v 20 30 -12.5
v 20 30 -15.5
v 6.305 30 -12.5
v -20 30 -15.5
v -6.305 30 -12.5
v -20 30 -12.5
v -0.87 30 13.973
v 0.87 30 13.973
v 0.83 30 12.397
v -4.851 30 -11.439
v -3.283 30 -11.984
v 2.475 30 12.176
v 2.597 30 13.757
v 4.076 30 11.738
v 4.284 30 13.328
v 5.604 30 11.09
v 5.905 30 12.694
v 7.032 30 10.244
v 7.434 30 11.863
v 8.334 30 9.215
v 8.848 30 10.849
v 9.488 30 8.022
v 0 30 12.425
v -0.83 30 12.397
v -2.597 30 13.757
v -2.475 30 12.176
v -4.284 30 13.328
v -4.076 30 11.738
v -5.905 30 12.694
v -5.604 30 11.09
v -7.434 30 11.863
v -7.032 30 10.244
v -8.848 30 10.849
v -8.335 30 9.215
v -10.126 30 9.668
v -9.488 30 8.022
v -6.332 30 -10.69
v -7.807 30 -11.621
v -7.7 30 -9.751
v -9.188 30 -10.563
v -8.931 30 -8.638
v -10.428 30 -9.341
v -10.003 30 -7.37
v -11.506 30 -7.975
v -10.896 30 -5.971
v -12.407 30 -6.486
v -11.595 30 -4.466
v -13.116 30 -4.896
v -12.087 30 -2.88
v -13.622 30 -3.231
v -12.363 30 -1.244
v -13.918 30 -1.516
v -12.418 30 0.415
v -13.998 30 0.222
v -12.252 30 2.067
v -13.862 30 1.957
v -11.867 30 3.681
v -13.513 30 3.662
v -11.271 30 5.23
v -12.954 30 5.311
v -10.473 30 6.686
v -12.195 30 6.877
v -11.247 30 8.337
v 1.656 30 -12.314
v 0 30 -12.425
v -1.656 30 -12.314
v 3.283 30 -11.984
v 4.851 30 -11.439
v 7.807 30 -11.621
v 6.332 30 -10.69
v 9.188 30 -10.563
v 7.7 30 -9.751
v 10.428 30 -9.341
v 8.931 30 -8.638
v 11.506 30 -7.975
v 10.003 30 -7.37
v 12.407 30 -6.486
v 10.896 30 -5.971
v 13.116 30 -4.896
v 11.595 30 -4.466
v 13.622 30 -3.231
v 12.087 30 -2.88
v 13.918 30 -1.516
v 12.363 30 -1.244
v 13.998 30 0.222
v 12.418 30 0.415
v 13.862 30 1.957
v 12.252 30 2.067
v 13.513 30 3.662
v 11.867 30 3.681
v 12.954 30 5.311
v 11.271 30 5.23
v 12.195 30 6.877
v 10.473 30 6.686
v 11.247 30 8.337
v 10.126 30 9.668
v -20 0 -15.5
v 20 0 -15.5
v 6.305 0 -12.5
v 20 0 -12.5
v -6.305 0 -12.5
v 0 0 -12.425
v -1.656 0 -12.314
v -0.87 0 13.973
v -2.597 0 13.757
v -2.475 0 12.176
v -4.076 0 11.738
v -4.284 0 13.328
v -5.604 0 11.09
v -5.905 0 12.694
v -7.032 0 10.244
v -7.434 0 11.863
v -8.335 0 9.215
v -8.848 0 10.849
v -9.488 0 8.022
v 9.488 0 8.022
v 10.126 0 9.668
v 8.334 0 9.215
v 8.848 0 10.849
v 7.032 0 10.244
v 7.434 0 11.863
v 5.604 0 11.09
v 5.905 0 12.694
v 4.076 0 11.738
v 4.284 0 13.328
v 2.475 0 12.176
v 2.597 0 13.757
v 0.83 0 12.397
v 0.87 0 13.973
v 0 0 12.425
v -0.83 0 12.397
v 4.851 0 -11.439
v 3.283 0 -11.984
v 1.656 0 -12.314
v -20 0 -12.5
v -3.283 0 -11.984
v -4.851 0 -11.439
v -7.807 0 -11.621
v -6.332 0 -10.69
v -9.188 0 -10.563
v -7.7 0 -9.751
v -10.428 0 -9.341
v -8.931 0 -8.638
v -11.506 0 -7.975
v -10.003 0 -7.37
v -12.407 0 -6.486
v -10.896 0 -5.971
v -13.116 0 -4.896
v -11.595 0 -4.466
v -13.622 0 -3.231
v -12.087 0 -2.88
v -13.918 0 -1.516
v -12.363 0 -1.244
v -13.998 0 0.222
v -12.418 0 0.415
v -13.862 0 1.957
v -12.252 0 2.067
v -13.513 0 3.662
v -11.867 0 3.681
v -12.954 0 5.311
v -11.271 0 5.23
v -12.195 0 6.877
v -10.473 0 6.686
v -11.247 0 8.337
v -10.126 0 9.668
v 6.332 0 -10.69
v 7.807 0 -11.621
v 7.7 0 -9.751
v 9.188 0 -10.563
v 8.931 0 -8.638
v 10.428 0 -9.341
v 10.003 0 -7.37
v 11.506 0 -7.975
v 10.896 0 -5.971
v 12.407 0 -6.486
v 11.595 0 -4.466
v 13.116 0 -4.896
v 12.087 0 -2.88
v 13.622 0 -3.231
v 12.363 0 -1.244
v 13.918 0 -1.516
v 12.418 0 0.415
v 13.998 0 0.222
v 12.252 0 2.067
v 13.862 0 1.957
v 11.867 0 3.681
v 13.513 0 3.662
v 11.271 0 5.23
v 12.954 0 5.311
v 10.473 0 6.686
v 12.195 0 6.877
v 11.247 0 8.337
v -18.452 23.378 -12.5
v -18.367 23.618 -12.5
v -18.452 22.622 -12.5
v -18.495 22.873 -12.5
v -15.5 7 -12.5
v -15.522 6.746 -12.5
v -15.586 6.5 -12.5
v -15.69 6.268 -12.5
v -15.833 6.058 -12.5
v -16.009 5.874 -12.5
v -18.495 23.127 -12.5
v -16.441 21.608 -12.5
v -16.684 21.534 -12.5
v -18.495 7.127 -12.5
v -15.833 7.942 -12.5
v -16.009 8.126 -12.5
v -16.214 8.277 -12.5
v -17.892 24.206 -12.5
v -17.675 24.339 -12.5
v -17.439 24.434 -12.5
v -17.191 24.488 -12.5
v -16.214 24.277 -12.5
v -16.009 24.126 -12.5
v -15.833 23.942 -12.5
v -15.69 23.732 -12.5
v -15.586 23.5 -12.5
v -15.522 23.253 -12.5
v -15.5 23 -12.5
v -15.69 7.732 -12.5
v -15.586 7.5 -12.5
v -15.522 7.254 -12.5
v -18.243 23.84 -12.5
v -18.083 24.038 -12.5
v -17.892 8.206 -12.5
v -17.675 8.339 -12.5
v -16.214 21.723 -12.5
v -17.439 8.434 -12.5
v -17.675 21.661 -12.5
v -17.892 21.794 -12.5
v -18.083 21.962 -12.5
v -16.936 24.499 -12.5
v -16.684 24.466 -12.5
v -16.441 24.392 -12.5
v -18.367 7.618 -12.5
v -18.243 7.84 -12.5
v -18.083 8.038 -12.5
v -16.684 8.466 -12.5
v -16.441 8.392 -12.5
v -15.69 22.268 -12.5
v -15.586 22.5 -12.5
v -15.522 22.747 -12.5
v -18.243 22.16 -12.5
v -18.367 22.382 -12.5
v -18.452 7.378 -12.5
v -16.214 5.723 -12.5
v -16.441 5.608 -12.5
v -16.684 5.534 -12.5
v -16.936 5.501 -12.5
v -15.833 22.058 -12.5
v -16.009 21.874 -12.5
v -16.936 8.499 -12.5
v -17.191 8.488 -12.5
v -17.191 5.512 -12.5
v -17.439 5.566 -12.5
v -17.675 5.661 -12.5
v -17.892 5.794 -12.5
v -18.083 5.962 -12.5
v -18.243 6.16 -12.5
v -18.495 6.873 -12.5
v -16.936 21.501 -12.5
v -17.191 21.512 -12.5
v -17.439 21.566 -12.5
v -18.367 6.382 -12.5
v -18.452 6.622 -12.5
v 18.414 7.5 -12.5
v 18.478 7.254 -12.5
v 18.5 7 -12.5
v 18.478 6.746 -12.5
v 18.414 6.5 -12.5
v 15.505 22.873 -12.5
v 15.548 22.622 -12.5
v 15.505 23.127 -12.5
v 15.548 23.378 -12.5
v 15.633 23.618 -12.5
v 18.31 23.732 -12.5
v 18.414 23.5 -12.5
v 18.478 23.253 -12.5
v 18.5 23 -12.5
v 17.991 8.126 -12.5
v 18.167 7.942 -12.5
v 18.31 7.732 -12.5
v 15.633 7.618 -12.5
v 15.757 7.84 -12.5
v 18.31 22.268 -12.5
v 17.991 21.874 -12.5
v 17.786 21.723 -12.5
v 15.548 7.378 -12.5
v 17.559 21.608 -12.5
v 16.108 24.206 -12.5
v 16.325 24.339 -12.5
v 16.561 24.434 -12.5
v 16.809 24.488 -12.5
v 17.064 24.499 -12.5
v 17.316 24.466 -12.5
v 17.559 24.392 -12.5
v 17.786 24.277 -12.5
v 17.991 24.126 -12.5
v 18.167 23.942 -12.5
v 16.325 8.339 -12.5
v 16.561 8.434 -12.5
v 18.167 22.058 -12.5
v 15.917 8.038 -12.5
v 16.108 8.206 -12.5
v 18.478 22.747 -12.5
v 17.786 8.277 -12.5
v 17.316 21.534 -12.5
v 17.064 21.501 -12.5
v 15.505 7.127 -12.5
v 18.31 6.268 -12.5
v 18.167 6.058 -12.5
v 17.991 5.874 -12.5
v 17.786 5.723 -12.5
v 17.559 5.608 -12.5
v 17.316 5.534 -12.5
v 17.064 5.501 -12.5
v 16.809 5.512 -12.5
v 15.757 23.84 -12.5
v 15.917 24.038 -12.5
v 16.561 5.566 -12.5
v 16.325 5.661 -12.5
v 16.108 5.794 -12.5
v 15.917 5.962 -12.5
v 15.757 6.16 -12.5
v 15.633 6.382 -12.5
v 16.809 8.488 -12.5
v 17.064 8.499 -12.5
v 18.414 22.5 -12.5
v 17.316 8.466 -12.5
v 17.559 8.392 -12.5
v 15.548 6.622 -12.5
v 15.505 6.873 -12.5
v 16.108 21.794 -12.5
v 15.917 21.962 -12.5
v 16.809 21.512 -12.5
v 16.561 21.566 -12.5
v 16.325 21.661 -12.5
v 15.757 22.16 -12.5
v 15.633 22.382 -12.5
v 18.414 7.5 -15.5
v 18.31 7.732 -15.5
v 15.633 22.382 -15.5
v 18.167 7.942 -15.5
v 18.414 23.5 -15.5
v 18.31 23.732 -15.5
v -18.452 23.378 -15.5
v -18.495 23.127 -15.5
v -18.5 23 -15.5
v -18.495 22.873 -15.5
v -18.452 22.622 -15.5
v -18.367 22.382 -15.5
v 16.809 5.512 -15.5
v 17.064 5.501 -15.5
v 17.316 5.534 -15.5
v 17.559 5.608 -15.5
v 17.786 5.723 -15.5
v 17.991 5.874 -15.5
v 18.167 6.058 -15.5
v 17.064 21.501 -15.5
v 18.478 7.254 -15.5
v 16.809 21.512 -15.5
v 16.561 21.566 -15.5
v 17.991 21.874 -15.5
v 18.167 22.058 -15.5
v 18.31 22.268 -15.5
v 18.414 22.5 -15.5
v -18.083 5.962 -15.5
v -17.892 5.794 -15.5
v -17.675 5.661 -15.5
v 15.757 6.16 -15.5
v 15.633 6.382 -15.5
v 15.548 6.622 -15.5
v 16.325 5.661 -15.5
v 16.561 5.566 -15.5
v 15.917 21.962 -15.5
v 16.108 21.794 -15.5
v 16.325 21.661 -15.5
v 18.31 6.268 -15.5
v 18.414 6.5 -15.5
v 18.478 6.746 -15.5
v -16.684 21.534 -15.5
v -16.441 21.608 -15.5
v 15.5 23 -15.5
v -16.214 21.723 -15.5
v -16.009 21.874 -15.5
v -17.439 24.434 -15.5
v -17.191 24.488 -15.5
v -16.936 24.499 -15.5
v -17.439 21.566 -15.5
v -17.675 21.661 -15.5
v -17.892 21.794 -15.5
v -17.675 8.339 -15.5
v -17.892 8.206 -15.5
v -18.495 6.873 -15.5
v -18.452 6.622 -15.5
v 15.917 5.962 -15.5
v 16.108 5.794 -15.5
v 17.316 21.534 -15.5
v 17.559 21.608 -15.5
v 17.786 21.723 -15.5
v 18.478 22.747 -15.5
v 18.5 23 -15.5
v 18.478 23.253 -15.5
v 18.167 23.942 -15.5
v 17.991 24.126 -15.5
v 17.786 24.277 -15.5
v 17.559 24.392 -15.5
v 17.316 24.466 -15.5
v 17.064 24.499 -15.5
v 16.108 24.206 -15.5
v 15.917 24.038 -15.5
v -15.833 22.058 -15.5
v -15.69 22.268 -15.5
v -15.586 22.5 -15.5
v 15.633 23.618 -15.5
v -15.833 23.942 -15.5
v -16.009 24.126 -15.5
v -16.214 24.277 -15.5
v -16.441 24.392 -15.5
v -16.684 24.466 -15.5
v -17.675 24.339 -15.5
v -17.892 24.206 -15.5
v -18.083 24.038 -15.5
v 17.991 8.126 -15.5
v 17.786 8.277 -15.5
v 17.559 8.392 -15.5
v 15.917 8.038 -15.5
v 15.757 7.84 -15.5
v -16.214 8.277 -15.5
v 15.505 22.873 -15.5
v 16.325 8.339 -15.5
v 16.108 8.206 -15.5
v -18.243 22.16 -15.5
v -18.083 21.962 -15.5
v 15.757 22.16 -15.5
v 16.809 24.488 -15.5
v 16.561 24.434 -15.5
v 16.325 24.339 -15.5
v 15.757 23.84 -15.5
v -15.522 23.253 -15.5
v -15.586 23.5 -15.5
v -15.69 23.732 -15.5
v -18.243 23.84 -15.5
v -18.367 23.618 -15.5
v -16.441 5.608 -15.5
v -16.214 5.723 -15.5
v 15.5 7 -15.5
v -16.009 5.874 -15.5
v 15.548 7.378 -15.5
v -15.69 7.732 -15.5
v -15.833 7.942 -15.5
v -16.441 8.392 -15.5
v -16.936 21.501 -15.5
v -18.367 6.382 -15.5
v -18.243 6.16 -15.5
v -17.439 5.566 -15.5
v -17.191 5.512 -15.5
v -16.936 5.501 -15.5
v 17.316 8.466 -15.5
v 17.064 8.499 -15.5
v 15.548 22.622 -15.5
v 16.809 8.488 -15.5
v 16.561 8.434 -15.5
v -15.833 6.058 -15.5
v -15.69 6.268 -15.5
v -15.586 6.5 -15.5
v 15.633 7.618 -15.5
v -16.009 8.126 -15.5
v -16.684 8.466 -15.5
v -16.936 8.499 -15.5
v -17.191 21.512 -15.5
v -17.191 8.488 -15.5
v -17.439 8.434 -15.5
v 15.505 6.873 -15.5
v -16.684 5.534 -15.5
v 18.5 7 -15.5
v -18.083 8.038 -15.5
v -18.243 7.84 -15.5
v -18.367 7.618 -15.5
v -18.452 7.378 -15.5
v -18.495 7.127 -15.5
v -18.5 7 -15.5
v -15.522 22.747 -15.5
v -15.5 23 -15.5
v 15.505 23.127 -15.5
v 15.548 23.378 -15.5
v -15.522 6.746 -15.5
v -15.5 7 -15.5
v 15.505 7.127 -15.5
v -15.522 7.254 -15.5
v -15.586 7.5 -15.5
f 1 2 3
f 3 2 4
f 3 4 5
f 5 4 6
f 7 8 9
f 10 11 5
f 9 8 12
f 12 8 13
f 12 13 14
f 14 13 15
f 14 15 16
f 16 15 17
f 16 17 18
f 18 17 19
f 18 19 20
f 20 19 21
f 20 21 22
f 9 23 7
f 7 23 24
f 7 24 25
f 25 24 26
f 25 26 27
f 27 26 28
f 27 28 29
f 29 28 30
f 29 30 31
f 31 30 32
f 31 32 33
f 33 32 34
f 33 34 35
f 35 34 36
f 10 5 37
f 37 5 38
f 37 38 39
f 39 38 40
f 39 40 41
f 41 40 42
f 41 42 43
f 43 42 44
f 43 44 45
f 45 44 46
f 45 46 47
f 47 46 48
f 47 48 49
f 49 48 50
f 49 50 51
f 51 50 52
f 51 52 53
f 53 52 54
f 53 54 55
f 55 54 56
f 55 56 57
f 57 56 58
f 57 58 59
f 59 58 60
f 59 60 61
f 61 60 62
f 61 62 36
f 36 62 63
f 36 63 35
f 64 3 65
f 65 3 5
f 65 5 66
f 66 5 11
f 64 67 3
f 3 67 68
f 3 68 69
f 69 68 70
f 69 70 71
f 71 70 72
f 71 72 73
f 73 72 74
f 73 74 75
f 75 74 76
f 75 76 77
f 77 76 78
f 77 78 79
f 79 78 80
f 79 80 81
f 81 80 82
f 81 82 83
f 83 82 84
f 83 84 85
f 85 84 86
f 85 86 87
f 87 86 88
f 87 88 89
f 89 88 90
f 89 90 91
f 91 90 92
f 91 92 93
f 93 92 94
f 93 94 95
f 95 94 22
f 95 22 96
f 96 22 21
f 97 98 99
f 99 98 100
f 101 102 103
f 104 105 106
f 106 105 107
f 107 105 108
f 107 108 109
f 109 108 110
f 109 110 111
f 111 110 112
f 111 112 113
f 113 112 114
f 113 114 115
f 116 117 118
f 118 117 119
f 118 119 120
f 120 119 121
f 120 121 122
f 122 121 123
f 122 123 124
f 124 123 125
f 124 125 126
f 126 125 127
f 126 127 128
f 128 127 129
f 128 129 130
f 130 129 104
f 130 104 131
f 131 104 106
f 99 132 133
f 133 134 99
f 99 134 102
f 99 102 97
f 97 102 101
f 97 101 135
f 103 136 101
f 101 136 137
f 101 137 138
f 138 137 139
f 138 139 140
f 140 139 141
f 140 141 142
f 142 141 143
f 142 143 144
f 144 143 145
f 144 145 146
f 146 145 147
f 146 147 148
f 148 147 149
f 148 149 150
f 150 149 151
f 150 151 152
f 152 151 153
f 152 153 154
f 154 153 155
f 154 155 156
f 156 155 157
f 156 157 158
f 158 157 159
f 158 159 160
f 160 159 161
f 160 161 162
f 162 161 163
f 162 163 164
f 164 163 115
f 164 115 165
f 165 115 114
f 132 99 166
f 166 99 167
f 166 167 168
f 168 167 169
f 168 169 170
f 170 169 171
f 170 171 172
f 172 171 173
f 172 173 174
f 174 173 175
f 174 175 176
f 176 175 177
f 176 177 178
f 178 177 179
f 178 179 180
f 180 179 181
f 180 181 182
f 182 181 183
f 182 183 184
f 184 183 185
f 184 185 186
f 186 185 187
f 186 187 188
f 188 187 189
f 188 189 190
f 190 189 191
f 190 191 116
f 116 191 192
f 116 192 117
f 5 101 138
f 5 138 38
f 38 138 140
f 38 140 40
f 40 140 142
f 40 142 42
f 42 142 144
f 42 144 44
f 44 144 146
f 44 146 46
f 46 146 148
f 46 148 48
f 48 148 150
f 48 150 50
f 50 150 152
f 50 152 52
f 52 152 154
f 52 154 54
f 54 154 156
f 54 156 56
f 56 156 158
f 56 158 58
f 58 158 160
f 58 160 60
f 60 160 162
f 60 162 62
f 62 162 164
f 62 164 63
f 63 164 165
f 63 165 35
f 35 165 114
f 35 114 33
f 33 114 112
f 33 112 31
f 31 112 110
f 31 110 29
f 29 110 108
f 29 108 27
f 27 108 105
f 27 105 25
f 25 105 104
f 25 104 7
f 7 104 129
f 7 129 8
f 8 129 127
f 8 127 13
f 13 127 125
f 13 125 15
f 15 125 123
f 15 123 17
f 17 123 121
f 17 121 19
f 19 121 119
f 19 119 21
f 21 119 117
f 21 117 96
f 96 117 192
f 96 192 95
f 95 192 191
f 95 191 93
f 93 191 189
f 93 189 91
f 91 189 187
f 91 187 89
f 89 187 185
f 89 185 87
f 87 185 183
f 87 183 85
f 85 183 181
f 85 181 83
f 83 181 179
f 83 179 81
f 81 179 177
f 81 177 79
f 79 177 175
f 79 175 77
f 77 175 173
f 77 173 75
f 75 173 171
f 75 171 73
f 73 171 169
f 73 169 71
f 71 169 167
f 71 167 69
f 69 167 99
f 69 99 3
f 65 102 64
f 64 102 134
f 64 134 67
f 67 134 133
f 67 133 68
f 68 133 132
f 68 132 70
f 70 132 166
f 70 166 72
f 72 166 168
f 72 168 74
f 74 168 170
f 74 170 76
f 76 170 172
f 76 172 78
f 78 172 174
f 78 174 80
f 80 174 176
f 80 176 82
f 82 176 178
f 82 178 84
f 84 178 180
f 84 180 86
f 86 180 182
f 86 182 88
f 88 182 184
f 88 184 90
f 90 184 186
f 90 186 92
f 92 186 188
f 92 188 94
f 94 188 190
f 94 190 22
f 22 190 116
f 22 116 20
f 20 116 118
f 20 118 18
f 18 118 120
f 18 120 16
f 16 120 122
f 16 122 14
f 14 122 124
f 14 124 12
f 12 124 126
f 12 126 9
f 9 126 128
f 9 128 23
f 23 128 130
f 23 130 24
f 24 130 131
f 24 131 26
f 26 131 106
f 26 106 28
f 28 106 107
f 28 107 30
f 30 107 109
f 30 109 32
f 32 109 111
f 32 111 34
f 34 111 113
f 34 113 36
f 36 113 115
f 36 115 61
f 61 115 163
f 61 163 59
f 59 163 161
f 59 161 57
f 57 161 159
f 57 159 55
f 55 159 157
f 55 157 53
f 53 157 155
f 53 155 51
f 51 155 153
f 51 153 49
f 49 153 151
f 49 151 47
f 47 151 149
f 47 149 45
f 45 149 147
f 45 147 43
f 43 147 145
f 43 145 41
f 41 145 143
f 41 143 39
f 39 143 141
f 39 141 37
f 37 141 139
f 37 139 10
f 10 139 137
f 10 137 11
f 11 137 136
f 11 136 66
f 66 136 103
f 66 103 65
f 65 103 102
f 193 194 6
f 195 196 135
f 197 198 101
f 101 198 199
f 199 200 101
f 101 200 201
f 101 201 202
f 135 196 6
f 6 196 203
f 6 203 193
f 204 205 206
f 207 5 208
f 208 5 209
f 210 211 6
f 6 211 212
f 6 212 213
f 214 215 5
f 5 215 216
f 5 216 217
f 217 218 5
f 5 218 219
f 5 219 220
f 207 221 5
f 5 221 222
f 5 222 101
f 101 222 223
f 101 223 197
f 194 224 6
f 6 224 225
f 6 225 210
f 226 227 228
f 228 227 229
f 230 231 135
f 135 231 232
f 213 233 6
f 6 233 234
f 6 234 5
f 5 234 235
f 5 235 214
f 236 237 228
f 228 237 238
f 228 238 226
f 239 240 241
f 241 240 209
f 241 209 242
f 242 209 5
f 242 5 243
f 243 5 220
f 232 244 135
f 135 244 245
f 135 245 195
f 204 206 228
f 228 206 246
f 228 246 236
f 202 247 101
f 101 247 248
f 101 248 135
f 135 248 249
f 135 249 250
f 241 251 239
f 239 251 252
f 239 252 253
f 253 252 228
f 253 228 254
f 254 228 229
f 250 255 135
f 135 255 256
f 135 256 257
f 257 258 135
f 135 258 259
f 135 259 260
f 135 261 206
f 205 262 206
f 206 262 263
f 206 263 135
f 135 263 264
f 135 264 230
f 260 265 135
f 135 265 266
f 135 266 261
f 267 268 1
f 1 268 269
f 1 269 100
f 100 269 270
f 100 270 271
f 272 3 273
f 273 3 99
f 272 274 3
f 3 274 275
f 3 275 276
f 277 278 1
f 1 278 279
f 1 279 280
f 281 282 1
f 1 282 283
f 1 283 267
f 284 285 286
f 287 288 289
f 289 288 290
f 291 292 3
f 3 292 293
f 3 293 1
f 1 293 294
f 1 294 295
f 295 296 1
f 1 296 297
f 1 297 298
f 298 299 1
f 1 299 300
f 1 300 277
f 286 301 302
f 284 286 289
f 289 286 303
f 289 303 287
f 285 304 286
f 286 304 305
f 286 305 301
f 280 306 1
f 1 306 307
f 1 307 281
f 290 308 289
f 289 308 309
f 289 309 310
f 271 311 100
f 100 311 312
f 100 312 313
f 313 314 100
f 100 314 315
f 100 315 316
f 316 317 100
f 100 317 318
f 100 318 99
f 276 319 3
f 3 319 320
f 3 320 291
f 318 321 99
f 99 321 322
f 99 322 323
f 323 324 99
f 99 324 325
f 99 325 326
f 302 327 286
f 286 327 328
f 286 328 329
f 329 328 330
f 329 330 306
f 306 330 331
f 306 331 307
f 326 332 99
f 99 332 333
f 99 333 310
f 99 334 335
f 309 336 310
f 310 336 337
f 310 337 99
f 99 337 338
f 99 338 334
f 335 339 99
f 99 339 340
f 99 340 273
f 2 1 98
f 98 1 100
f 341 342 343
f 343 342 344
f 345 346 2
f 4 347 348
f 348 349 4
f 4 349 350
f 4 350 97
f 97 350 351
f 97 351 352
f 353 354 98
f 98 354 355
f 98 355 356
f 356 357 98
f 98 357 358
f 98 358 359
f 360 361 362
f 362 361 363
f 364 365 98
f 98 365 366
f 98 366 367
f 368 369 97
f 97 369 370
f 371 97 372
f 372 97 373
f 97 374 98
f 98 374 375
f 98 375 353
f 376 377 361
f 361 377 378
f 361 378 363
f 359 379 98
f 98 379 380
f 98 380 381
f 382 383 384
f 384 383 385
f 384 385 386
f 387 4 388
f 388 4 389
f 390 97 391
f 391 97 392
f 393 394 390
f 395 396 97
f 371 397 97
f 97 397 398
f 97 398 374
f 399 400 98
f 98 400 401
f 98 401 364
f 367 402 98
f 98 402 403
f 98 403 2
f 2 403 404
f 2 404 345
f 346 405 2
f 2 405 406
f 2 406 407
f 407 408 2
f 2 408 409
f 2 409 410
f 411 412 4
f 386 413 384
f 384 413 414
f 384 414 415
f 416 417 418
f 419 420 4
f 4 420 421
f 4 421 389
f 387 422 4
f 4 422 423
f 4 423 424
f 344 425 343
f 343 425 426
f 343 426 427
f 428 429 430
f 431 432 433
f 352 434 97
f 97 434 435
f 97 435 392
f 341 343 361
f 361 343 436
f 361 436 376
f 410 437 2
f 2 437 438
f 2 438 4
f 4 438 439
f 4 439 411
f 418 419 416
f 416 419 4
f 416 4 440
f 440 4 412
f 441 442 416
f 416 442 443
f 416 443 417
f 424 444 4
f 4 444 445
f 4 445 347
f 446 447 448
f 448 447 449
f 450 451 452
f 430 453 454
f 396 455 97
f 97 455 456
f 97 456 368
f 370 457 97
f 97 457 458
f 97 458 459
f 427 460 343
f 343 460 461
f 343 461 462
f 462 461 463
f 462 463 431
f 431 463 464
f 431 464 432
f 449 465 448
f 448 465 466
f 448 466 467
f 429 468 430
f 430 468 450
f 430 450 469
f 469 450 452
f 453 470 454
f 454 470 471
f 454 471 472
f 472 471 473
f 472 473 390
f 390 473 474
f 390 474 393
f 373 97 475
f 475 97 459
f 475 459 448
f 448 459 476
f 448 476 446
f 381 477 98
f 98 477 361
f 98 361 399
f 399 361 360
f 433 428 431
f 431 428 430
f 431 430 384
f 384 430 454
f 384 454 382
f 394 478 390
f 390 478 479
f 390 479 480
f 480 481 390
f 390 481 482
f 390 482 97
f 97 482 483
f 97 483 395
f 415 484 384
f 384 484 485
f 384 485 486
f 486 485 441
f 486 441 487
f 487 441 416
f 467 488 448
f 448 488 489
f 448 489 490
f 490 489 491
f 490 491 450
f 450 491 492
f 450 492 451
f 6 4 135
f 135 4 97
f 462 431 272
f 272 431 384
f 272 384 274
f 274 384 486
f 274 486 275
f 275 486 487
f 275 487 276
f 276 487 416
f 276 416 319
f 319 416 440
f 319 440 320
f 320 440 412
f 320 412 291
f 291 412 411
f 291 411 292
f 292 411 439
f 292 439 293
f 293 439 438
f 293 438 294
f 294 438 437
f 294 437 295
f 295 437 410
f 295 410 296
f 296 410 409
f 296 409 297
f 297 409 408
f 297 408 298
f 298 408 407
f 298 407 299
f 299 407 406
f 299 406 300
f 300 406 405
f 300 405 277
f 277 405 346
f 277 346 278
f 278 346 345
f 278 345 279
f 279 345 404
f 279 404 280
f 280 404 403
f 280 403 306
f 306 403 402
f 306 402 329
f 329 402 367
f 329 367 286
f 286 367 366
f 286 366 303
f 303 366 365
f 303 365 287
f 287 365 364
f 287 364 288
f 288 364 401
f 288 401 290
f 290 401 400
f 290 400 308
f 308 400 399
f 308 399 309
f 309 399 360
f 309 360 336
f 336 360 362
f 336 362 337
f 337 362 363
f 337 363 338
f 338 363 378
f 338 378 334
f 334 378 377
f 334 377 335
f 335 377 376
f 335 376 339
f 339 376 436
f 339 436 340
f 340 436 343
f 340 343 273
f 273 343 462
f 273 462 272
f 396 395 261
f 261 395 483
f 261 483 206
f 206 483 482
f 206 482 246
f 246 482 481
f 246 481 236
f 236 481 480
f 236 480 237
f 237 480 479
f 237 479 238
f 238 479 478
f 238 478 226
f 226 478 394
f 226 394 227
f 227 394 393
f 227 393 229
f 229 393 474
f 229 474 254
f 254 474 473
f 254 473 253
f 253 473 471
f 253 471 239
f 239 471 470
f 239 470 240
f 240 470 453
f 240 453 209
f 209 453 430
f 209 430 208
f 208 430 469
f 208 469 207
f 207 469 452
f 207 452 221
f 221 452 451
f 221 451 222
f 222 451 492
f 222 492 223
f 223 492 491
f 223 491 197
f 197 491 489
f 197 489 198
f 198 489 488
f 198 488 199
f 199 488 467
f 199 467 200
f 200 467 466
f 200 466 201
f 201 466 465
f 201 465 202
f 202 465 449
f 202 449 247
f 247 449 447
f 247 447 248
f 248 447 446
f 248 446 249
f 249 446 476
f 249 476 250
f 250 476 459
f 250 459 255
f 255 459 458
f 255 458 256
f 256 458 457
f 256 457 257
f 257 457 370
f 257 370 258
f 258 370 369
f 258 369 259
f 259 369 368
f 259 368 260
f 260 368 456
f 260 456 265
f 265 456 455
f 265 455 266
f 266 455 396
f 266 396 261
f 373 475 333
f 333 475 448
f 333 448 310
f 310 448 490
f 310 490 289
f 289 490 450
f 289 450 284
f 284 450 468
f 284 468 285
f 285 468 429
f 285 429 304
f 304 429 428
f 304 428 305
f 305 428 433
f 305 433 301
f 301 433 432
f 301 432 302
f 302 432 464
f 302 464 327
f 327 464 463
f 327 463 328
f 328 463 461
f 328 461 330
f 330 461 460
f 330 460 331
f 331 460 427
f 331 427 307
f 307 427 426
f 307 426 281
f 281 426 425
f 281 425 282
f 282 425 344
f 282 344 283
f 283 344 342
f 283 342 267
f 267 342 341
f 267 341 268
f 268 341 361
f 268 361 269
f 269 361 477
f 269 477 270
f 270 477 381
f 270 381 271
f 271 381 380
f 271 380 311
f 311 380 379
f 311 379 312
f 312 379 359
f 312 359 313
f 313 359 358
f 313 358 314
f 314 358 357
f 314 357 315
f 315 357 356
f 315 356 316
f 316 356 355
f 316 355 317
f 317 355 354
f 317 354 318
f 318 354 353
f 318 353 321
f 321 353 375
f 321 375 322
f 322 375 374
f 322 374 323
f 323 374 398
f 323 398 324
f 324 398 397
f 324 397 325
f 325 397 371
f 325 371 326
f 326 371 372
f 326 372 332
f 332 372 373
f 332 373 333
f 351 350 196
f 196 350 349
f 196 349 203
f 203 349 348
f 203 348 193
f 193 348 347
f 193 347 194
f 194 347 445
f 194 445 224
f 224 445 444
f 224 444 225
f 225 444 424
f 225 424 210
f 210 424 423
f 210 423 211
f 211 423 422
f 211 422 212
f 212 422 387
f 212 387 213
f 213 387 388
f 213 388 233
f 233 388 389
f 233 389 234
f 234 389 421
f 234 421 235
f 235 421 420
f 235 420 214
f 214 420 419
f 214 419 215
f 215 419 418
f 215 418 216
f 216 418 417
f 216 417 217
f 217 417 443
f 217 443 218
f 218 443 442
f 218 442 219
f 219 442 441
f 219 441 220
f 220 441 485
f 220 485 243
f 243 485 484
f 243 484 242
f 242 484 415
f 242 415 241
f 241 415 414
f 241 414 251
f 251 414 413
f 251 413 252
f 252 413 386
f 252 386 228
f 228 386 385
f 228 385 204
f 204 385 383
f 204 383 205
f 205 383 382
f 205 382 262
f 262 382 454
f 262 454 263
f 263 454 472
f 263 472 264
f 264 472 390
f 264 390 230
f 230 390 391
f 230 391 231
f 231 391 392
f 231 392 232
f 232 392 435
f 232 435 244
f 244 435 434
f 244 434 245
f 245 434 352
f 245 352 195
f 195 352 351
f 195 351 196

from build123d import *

# Parameters (mm, degrees)
SKETCH1_R           = 14
SKETCH1_R_2         = 12.425
BOSS_EXTRUDE1_DEPTH = 30
SKETCH2_W           = 40
SKETCH2_H           = 3
BOSS_EXTRUDE2_DEPTH = 30
SKETCH3_R           = 1.5
CUT_EXTRUDE1_DEPTH  = 30


with BuildPart() as part:
    # Sketch1 → Boss-Extrude1 (new body)
    with BuildSketch(Plane(origin=(0, 0, 0), x_dir=(1, 0, 0), z_dir=(0, 1, 0))):
        with Locations(Location((0, 0, 0), (0, 0, 270))):
            Circle(SKETCH1_R)
        with Locations(Location((0, 0, 0), (0, 0, 270))):
            Circle(SKETCH1_R_2, mode=Mode.SUBTRACT)
    extrude(amount=BOSS_EXTRUDE1_DEPTH)

    # Sketch2 → Boss-Extrude2 (add)
    with BuildSketch(Plane.XZ):
        with Locations((0, -14)):
            Rectangle(SKETCH2_W, SKETCH2_H)
    extrude(amount=-BOSS_EXTRUDE2_DEPTH)

    # Sketch3 → Cut-Extrude1 (cut)
    with BuildSketch(Plane.XY.offset(-12.5)):
        with Locations((17, 23)):
            Circle(SKETCH3_R)
        with Locations((-17, 23)):
            Circle(SKETCH3_R)
        with Locations((17, 7)):
            Circle(SKETCH3_R)
        with Locations((-17, 7)):
            Circle(SKETCH3_R)
    extrude(amount=-CUT_EXTRUDE1_DEPTH, mode=Mode.SUBTRACT)


solid = part.part
